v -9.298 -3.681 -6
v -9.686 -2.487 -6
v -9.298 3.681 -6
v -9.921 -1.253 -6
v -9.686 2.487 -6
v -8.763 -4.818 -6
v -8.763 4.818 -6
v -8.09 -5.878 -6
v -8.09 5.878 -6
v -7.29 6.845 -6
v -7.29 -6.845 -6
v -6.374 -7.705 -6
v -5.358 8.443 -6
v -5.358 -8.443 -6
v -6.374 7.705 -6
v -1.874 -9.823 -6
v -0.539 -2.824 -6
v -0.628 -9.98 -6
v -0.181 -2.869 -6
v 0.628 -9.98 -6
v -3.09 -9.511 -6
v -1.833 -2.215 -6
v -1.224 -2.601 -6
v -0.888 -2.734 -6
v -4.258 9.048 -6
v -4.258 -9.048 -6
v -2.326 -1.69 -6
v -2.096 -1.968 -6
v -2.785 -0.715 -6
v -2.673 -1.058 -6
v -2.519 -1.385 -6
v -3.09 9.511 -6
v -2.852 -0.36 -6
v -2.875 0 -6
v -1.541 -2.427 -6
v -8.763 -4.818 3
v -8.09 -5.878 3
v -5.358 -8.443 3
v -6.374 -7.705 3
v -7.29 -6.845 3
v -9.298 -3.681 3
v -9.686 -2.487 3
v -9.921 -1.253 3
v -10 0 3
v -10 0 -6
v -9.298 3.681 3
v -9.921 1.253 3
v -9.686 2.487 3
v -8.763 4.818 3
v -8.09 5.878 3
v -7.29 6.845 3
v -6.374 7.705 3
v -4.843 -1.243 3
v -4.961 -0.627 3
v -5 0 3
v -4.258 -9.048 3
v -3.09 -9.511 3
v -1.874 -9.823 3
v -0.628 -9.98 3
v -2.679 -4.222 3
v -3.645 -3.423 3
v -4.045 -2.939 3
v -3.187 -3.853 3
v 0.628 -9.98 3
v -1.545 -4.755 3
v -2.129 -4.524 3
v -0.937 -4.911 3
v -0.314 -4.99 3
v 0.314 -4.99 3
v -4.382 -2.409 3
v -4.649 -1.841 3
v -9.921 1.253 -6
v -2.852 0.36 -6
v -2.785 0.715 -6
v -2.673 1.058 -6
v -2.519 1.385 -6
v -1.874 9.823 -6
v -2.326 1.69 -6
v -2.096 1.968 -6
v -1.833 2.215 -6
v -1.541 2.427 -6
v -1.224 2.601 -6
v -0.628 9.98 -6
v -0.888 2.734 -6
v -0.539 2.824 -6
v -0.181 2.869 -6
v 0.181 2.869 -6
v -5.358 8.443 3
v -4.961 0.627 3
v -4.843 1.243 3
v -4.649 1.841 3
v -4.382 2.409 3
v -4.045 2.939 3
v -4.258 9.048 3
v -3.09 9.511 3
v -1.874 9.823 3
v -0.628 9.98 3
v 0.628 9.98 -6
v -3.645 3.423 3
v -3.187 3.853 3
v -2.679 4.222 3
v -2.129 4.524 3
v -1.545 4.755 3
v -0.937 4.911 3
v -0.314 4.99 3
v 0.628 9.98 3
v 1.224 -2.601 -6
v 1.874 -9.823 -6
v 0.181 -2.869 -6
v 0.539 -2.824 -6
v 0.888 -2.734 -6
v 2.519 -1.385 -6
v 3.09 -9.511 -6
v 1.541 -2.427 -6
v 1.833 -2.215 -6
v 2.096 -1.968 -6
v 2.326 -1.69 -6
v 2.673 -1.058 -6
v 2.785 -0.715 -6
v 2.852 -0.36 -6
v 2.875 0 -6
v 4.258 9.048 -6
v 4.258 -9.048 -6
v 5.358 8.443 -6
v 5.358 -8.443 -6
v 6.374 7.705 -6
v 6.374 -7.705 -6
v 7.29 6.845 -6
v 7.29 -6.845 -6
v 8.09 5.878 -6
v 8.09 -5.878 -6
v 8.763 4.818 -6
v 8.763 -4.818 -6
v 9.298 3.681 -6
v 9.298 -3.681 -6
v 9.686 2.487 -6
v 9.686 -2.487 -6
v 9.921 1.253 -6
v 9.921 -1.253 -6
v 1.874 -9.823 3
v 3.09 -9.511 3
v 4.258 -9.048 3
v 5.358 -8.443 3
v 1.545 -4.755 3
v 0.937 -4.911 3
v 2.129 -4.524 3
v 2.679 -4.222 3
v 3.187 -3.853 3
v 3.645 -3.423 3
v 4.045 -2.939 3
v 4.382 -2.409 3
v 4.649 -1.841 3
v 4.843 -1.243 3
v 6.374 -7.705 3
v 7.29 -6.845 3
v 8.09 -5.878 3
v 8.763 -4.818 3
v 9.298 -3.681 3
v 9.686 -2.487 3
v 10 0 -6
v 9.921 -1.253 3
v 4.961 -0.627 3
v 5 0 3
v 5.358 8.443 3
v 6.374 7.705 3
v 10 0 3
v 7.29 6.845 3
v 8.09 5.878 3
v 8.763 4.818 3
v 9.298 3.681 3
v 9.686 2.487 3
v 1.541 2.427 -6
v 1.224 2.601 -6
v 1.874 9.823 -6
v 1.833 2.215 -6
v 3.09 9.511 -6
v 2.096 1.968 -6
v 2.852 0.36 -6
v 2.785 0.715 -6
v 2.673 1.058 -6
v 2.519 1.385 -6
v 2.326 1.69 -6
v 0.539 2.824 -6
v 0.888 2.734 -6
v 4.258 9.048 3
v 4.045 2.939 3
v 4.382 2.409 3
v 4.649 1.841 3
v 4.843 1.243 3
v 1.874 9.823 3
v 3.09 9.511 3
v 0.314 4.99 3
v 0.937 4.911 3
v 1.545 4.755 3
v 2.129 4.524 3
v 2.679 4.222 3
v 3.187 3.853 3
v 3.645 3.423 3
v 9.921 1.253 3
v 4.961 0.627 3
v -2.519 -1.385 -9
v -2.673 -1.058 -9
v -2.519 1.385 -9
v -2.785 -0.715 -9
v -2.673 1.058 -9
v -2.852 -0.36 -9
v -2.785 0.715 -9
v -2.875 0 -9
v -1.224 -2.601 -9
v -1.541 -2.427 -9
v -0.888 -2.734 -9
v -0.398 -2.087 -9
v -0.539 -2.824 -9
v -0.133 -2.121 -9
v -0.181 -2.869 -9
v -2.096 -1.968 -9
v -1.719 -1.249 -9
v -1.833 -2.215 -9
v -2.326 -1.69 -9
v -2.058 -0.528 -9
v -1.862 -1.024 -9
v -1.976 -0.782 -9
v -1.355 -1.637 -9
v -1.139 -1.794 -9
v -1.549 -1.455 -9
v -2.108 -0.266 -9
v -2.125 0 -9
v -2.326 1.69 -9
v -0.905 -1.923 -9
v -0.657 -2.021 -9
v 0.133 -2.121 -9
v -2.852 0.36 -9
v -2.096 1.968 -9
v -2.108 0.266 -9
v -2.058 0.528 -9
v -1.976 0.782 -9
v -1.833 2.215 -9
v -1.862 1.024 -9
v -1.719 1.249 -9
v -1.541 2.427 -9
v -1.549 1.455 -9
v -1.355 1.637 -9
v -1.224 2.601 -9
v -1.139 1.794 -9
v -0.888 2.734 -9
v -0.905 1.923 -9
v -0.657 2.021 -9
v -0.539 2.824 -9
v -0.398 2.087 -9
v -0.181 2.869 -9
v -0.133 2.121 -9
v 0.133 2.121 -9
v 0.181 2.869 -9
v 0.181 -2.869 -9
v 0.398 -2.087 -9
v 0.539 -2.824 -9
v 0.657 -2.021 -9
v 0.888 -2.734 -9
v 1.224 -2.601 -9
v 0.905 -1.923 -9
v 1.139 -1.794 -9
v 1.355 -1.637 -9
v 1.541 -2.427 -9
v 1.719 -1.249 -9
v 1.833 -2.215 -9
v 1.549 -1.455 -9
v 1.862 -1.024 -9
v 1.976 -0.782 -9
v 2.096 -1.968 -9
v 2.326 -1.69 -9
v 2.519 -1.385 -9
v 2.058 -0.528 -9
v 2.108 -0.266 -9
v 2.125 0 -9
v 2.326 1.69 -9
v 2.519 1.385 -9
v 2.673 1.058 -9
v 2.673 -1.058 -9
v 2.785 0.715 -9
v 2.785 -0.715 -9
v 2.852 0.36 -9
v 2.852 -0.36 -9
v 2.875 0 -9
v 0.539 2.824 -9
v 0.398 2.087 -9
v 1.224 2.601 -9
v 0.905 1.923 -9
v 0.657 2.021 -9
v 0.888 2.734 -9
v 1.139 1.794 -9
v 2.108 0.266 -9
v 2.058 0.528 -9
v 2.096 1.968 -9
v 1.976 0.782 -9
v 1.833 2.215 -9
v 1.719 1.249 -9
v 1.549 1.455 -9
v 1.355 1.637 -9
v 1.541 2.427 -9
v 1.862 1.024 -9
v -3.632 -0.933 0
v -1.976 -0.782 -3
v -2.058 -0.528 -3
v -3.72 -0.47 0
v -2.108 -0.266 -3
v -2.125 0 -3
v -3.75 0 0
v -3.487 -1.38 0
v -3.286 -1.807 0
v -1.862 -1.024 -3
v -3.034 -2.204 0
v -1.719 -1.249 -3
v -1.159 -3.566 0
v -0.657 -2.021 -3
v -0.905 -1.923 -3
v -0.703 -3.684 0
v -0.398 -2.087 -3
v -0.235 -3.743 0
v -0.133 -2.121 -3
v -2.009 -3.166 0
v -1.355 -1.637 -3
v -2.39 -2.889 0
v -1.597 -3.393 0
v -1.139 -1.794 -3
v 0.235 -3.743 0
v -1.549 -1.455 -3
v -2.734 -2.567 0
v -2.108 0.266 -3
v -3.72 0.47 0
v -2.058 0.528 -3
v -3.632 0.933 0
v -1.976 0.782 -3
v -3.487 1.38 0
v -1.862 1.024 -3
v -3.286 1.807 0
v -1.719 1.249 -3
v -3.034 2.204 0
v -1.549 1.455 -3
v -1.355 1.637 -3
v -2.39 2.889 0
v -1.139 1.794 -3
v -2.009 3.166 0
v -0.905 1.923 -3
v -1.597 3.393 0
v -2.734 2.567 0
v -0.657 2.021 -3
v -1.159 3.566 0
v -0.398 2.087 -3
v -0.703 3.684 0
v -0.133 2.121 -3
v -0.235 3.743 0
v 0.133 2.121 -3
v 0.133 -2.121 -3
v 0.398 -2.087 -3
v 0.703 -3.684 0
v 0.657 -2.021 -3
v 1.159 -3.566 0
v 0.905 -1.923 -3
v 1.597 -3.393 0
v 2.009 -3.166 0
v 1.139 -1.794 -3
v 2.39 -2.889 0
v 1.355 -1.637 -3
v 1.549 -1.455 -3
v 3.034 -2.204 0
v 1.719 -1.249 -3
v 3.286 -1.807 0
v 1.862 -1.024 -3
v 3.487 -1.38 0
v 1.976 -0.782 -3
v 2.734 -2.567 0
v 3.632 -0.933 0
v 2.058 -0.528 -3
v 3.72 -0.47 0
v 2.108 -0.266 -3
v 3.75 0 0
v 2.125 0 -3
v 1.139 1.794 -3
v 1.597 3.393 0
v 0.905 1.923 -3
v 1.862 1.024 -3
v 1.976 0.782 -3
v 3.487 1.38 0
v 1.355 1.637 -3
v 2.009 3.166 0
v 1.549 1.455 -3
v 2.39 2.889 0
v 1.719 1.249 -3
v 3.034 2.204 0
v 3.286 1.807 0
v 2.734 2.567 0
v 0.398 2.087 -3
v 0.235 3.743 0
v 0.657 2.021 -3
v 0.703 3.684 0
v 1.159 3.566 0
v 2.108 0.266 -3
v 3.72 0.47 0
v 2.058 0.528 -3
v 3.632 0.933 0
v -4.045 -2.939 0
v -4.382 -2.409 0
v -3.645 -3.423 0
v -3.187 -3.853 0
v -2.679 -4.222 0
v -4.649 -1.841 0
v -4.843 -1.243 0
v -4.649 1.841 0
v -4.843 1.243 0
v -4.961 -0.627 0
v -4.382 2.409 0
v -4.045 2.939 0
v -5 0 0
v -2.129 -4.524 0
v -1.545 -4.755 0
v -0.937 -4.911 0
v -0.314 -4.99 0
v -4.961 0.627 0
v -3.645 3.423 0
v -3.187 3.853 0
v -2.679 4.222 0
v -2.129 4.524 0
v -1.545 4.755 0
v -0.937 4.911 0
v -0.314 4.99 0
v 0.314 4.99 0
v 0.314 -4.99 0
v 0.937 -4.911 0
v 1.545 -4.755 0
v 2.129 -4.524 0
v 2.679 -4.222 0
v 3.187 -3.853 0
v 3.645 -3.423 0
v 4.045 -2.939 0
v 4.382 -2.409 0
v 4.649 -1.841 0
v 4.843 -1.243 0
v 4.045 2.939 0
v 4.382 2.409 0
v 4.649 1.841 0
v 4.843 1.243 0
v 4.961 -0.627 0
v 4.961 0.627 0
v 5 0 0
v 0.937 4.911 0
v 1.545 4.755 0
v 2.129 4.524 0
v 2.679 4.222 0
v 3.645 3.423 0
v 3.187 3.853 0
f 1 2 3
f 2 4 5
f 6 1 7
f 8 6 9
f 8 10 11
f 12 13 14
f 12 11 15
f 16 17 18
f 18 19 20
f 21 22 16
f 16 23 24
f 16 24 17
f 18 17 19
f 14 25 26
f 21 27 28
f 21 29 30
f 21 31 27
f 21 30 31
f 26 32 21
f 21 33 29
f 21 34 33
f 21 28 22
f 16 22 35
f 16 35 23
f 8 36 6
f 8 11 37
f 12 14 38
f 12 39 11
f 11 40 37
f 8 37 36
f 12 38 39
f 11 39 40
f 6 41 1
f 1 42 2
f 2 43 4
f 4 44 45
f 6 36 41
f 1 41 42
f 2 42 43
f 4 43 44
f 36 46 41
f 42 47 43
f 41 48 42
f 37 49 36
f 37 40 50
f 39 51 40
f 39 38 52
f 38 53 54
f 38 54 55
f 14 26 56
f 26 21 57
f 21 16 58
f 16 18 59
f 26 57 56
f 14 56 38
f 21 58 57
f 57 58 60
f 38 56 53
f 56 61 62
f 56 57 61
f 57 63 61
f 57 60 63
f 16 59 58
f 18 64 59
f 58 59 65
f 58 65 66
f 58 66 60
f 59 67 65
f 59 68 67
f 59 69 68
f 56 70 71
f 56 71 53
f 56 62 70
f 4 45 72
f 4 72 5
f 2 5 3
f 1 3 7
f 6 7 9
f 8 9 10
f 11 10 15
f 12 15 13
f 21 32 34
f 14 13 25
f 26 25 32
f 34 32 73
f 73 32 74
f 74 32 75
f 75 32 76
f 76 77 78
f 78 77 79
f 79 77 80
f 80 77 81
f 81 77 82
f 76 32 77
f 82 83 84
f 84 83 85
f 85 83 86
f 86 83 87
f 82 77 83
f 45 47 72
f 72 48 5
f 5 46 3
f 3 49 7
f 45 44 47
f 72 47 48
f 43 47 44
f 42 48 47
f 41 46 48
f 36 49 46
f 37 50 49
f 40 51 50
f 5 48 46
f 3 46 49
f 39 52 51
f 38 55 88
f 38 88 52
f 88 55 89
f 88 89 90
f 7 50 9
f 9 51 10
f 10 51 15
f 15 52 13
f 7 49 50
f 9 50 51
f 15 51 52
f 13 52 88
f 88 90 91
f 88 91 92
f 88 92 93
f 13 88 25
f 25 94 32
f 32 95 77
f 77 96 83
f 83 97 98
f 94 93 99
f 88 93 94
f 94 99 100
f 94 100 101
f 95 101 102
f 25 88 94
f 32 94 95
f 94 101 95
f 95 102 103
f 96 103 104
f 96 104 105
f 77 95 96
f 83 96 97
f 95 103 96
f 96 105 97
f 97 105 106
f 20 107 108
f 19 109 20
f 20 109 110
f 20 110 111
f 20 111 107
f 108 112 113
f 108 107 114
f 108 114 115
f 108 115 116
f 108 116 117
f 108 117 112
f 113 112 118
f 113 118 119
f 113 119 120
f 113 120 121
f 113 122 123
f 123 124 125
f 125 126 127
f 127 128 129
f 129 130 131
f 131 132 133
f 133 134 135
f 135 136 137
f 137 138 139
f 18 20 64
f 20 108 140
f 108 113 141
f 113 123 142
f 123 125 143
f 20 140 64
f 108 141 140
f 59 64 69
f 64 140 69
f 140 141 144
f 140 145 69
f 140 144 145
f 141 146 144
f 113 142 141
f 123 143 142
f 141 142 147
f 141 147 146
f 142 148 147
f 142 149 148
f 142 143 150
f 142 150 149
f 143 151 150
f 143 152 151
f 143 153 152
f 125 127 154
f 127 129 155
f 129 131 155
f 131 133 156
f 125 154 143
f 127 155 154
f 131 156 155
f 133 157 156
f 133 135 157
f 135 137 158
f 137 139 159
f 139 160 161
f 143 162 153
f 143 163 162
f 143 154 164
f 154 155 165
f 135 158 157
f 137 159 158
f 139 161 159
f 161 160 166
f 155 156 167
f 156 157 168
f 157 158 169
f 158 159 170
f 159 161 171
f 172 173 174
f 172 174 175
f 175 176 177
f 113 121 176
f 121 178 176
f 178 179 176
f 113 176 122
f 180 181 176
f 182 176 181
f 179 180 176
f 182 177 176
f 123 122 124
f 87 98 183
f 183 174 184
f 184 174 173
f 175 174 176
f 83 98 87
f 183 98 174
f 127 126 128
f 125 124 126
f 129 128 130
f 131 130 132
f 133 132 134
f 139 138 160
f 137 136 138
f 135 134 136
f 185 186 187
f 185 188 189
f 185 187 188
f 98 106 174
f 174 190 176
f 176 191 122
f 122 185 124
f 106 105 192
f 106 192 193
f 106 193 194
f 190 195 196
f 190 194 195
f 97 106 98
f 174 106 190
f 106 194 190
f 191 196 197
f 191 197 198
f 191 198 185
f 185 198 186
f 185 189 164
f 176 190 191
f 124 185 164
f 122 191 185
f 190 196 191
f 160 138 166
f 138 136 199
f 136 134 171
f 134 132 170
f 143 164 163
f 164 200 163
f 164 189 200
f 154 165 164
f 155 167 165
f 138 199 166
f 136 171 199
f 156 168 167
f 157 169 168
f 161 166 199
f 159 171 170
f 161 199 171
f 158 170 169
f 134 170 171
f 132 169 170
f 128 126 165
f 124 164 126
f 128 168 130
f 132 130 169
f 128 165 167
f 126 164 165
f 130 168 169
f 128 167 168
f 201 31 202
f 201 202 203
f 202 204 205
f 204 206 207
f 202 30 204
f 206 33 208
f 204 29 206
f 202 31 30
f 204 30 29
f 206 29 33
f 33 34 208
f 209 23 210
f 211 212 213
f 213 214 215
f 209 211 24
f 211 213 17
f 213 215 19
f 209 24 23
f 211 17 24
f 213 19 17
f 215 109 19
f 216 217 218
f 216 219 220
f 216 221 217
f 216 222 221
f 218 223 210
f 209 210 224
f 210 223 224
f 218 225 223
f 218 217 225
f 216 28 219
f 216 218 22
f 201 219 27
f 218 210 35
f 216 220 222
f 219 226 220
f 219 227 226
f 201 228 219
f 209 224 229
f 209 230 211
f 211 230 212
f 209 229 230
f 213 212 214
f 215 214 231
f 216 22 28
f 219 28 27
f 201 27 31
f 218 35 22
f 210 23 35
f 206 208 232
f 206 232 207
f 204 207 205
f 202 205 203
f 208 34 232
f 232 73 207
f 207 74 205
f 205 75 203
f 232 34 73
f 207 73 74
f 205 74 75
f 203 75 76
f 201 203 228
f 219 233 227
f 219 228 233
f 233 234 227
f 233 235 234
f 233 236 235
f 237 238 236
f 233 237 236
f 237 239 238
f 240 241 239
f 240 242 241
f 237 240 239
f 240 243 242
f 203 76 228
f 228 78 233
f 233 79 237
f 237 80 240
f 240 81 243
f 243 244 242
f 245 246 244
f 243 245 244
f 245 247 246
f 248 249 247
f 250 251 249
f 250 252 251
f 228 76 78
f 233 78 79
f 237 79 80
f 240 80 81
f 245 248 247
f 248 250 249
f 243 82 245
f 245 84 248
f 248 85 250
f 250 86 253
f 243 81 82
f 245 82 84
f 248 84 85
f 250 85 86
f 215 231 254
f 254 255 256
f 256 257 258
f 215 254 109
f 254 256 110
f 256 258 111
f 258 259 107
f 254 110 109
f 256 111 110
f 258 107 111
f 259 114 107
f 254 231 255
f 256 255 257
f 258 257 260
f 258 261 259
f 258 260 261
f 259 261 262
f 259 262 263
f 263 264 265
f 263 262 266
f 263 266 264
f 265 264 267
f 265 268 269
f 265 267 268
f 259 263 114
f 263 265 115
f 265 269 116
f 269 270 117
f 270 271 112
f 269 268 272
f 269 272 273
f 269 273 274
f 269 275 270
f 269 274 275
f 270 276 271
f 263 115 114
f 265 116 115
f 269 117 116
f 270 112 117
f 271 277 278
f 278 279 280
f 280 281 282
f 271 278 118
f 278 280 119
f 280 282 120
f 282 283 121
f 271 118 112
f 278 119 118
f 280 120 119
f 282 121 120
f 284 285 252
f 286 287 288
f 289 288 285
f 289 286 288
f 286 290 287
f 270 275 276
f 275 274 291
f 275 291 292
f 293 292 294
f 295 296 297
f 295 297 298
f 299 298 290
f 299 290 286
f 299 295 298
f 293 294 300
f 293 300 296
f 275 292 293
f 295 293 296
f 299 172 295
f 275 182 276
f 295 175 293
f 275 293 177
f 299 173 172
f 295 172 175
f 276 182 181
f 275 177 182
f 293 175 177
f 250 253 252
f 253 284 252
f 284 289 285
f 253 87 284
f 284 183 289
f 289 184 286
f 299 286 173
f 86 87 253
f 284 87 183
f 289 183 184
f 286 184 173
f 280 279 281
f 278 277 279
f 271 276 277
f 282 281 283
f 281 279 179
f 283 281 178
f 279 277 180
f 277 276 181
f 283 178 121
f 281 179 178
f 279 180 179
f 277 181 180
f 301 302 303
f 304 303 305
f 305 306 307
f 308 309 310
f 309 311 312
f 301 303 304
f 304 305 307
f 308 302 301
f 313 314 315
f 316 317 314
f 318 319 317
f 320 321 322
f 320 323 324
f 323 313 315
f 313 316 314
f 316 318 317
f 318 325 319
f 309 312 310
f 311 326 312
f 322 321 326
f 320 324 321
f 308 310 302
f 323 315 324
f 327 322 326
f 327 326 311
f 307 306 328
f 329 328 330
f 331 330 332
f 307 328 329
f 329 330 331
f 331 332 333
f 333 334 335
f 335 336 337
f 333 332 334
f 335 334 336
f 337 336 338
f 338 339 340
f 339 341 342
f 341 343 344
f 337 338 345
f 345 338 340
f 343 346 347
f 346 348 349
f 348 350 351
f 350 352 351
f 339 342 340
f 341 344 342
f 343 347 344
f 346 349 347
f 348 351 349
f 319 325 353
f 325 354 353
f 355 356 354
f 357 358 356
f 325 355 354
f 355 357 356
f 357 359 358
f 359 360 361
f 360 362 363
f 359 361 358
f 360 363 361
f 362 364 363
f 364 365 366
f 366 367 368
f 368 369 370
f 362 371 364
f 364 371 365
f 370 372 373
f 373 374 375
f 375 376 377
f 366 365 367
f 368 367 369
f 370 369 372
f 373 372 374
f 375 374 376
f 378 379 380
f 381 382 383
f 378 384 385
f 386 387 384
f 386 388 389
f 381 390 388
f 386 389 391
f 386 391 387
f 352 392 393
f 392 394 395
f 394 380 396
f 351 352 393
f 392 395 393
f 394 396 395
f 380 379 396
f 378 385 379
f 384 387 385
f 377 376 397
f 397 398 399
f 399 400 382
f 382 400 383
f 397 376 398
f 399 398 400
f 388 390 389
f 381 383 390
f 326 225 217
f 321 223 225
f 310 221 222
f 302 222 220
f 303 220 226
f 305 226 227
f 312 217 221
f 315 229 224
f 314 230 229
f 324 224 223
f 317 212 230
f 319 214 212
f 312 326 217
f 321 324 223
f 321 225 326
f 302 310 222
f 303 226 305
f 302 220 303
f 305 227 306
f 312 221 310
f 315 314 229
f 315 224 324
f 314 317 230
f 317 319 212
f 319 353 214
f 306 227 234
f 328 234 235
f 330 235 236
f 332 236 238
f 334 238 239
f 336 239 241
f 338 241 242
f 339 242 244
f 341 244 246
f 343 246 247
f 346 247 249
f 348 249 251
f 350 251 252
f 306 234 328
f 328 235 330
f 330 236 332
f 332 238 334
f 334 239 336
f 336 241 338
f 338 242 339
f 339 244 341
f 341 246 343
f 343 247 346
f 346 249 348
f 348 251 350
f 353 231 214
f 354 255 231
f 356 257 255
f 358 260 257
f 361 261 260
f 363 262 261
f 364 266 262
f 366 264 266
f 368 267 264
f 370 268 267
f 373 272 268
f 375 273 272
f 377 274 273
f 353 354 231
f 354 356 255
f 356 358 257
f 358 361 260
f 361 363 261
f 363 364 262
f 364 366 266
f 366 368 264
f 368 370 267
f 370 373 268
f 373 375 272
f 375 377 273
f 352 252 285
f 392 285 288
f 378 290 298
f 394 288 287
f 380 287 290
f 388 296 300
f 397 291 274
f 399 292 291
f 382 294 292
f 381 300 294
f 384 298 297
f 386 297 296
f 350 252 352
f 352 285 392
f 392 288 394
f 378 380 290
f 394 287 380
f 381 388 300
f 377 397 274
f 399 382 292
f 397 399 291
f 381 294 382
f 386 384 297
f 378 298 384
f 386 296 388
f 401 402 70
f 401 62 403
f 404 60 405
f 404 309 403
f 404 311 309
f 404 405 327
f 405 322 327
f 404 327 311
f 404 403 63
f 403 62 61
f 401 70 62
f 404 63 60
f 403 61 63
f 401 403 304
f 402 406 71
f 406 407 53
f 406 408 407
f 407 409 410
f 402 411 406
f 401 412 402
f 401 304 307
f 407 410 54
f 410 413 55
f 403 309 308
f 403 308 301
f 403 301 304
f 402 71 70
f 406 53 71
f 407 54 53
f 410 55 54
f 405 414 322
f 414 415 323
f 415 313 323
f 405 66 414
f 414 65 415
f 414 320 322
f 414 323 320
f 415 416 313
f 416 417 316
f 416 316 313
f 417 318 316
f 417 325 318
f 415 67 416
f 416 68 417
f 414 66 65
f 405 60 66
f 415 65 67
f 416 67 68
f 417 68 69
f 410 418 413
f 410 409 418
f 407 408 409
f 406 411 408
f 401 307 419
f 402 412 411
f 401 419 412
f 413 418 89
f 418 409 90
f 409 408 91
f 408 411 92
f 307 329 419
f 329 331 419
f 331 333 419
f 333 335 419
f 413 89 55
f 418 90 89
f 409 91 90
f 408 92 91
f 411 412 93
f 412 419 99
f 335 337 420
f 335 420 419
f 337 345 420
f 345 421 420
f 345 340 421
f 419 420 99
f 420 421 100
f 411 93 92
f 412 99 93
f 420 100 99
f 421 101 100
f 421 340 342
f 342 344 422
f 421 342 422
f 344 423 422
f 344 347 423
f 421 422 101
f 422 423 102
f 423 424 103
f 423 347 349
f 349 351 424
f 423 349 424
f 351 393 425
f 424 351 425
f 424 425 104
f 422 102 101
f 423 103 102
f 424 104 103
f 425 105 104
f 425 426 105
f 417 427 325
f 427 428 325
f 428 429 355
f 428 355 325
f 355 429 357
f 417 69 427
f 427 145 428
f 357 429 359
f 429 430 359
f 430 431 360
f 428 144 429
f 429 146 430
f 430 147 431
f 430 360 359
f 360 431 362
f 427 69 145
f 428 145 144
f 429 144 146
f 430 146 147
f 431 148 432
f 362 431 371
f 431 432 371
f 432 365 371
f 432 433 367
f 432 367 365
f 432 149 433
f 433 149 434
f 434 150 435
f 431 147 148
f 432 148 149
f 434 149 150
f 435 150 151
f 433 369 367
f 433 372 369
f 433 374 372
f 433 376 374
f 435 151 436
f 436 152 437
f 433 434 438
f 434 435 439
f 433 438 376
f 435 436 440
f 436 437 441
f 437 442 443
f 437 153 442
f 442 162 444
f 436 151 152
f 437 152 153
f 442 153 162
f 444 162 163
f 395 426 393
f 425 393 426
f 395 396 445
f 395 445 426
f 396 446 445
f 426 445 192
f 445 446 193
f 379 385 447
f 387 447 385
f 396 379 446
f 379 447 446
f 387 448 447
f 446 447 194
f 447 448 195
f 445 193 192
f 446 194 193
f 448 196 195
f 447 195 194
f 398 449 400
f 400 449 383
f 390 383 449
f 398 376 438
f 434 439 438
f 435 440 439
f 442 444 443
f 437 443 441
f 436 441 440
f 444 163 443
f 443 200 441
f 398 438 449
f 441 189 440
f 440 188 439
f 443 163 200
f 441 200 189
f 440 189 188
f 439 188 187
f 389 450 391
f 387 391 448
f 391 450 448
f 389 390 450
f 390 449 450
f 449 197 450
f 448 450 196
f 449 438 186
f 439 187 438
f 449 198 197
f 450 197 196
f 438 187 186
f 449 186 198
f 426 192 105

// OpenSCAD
$fn = 50;

difference() {
	union() {
		translate(v = [0, 0, -6.0]) {
			cylinder(h = 9, r = 10.0);
		}
		#translate(v = [0, 0, -9.0]) {
			cylinder(h = 9, r = 2.875);
		}
	}
	union() {
		translate(v = [0, 0, 0]) {
			rotate(a = [0, 0, 0]) {
				difference() {
					union() {
						translate(v = [0, 0, -9.0]) {
							cylinder(h = 9, r = 2.0);
						}
						translate(v = [0, 0, -3]) {
							cylinder(h = 3, r1 = 2.125, r2 = 3.75);
						}
						translate(v = [0, 0, -9.0]) {
							cylinder(h = 9, r = 2.125);
						}
						translate(v = [0, 0, -9.0]) {
							cylinder(h = 9, r = 2.0);
						}
					}
					union();
				}
			}
		}
		#cylinder(h = 3, r = 5.0);
	}
}
